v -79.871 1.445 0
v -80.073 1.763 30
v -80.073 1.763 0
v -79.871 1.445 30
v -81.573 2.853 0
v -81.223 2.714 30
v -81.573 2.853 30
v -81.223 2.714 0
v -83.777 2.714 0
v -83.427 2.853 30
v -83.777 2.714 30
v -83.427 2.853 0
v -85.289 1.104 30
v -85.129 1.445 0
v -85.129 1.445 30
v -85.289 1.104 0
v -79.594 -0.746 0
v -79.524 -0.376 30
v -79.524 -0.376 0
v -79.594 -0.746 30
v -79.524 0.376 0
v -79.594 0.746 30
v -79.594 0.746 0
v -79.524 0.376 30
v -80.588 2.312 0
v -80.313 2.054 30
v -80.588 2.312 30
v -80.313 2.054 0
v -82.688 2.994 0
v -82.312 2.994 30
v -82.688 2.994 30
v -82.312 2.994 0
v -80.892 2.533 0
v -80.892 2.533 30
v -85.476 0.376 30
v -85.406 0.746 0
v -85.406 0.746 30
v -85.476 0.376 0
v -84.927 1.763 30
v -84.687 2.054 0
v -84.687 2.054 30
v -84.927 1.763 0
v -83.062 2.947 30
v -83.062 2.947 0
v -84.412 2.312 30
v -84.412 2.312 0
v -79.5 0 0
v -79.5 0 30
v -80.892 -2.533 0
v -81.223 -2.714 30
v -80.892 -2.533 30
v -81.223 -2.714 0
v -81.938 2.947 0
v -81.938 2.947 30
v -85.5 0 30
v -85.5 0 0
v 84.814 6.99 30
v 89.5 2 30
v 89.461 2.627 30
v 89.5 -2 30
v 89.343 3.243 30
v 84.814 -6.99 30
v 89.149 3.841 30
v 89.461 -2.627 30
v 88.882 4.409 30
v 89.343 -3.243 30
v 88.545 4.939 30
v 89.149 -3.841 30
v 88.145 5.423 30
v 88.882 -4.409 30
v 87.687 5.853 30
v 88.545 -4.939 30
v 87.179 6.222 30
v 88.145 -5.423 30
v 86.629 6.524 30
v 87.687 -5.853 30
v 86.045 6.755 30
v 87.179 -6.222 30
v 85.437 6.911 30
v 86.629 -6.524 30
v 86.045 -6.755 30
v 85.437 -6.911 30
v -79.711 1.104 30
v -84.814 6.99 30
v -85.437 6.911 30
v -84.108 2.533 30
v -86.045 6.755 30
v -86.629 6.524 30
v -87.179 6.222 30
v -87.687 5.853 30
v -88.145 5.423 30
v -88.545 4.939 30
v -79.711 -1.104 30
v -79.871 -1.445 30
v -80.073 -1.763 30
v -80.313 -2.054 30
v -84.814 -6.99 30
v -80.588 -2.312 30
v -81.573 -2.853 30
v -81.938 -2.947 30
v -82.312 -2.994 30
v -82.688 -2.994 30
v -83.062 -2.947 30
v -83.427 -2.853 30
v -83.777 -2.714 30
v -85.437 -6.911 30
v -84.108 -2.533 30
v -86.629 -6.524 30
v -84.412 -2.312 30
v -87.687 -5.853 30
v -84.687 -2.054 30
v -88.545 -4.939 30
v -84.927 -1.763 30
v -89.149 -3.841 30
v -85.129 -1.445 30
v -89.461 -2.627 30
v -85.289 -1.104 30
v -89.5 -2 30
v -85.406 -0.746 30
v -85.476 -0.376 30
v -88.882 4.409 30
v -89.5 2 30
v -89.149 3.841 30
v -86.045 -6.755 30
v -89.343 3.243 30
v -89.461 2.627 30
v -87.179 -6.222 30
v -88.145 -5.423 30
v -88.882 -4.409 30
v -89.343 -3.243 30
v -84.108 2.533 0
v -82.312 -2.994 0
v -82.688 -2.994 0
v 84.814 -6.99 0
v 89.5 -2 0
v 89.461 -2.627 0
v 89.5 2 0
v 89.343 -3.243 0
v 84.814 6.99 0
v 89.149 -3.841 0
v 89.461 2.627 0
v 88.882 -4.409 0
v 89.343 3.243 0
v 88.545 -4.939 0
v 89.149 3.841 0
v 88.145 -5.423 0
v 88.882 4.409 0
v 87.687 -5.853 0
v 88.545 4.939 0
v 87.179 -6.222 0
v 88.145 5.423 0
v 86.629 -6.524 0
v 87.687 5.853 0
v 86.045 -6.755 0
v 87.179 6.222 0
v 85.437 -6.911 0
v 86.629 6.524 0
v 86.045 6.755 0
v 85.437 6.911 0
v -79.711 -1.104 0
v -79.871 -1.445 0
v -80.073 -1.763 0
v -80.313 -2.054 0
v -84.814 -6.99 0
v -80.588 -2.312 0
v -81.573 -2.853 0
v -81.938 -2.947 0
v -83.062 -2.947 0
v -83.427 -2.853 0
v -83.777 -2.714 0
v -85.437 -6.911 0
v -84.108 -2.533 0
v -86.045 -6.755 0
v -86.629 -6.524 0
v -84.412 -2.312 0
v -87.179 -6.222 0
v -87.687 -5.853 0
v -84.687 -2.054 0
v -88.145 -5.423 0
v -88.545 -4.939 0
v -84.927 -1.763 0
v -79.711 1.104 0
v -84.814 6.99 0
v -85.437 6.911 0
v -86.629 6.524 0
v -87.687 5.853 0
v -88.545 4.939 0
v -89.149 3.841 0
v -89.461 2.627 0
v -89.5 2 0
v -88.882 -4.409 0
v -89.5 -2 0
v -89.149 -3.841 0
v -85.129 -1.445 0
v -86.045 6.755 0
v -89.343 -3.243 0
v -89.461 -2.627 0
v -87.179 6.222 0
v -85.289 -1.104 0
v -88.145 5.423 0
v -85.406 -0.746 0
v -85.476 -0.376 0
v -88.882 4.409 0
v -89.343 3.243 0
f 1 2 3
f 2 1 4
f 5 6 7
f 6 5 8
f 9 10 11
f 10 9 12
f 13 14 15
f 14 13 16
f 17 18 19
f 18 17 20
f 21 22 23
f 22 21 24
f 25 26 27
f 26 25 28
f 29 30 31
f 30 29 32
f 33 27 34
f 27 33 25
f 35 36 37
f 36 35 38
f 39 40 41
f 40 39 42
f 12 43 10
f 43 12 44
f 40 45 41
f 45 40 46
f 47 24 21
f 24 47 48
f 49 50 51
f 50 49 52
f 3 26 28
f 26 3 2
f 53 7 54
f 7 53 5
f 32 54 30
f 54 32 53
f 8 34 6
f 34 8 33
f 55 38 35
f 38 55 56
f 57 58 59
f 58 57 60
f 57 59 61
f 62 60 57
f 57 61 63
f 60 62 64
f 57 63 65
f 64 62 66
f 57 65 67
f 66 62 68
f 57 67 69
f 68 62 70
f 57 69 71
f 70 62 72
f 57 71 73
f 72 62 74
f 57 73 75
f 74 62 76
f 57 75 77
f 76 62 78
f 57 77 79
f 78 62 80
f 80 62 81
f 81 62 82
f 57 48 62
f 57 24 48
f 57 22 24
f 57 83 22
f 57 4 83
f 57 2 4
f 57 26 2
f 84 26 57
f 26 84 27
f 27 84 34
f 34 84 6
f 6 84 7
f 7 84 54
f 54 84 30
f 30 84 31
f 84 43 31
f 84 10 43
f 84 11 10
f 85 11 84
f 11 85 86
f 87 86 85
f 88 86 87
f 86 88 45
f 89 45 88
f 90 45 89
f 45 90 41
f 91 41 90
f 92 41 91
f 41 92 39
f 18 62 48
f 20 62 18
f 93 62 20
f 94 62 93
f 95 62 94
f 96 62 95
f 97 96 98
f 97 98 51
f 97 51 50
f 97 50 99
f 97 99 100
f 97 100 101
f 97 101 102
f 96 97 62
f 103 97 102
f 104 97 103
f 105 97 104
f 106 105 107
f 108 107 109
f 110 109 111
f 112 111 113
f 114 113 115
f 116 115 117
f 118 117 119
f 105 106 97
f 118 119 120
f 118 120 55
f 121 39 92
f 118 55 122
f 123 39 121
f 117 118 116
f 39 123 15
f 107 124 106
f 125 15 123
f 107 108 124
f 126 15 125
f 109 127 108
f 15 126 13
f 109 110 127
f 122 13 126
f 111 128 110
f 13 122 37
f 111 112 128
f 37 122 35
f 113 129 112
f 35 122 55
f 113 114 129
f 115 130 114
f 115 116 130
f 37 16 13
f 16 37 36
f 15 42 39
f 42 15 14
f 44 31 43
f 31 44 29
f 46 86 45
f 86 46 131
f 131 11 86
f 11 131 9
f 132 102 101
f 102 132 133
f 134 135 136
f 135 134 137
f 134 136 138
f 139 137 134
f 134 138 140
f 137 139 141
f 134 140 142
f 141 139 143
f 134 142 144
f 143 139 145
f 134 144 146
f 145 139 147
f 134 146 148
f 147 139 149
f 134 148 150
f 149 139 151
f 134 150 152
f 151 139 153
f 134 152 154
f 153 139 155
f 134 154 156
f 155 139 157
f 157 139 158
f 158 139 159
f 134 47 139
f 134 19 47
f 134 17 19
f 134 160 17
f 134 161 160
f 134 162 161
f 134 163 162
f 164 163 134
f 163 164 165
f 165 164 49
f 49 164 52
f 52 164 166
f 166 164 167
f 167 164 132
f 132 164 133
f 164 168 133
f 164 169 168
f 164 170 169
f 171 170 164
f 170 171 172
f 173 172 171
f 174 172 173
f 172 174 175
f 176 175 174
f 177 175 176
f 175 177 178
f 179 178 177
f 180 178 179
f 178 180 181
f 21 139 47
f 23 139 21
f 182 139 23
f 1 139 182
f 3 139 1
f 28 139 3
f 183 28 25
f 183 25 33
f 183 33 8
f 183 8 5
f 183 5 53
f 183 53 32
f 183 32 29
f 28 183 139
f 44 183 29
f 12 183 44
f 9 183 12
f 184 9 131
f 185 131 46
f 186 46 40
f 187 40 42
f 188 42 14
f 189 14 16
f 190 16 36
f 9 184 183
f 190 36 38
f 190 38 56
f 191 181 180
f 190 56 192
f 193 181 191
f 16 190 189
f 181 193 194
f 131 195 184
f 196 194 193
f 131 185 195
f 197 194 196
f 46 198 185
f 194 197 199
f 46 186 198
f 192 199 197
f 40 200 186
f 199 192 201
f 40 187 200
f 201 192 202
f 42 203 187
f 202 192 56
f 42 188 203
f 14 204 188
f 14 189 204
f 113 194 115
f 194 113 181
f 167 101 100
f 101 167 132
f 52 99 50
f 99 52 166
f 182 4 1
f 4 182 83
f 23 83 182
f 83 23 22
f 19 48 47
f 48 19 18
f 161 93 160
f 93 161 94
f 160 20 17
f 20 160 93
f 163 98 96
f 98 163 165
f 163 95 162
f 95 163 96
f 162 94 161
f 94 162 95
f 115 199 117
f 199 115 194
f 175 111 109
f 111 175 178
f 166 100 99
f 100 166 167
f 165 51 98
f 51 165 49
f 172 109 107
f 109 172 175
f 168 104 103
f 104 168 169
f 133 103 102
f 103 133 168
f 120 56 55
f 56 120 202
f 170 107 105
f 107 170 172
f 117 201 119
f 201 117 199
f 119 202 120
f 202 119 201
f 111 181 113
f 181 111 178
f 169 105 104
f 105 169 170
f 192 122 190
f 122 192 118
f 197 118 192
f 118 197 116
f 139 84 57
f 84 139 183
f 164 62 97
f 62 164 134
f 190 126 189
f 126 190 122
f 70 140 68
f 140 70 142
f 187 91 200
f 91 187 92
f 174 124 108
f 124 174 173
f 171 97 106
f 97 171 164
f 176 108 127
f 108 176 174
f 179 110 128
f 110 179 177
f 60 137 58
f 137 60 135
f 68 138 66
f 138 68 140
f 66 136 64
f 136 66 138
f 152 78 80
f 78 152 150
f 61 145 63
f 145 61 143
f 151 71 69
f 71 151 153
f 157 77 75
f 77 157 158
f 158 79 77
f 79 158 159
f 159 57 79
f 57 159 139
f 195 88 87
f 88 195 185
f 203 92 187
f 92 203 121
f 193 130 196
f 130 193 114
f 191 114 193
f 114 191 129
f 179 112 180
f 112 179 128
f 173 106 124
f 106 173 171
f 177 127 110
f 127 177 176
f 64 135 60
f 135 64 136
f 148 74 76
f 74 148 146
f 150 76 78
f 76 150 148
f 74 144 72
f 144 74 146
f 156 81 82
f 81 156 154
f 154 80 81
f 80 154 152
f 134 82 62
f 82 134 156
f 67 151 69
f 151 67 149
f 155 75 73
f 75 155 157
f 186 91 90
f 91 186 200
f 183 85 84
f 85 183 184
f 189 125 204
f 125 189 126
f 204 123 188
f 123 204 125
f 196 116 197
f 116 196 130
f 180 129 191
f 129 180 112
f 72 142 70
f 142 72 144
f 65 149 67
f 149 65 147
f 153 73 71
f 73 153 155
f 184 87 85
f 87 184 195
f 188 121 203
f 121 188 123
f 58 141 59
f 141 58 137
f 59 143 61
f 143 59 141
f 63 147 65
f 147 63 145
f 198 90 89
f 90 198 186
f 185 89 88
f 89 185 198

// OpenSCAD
$fn = 50;


difference() {
	union() {
		hull() {
			translate(v = [-84.5000000000, 2.0000000000, 0]) {
				cylinder(h = 30, r = 5);
			}
			translate(v = [84.5000000000, 2.0000000000, 0]) {
				cylinder(h = 30, r = 5);
			}
			translate(v = [-84.5000000000, -2.0000000000, 0]) {
				cylinder(h = 30, r = 5);
			}
			translate(v = [84.5000000000, -2.0000000000, 0]) {
				cylinder(h = 30, r = 5);
			}
		}
	}
	union() {
		translate(v = [-82.5000000000, 0.0000000000, 0]) {
			cylinder(h = 30, r = 3.0000000000);
		}
		translate(v = [-82.5000000000, 0.0000000000, 0]) {
			cylinder(h = 30, r = 1.5000000000);
		}
		translate(v = [-82.5000000000, 0.0000000000, 0]) {
			cylinder(h = 30, r = 1.5000000000);
		}
		translate(v = [-82.5000000000, 0.0000000000, 0]) {
			cylinder(h = 30, r = 1.5000000000);
		}
	}
}
